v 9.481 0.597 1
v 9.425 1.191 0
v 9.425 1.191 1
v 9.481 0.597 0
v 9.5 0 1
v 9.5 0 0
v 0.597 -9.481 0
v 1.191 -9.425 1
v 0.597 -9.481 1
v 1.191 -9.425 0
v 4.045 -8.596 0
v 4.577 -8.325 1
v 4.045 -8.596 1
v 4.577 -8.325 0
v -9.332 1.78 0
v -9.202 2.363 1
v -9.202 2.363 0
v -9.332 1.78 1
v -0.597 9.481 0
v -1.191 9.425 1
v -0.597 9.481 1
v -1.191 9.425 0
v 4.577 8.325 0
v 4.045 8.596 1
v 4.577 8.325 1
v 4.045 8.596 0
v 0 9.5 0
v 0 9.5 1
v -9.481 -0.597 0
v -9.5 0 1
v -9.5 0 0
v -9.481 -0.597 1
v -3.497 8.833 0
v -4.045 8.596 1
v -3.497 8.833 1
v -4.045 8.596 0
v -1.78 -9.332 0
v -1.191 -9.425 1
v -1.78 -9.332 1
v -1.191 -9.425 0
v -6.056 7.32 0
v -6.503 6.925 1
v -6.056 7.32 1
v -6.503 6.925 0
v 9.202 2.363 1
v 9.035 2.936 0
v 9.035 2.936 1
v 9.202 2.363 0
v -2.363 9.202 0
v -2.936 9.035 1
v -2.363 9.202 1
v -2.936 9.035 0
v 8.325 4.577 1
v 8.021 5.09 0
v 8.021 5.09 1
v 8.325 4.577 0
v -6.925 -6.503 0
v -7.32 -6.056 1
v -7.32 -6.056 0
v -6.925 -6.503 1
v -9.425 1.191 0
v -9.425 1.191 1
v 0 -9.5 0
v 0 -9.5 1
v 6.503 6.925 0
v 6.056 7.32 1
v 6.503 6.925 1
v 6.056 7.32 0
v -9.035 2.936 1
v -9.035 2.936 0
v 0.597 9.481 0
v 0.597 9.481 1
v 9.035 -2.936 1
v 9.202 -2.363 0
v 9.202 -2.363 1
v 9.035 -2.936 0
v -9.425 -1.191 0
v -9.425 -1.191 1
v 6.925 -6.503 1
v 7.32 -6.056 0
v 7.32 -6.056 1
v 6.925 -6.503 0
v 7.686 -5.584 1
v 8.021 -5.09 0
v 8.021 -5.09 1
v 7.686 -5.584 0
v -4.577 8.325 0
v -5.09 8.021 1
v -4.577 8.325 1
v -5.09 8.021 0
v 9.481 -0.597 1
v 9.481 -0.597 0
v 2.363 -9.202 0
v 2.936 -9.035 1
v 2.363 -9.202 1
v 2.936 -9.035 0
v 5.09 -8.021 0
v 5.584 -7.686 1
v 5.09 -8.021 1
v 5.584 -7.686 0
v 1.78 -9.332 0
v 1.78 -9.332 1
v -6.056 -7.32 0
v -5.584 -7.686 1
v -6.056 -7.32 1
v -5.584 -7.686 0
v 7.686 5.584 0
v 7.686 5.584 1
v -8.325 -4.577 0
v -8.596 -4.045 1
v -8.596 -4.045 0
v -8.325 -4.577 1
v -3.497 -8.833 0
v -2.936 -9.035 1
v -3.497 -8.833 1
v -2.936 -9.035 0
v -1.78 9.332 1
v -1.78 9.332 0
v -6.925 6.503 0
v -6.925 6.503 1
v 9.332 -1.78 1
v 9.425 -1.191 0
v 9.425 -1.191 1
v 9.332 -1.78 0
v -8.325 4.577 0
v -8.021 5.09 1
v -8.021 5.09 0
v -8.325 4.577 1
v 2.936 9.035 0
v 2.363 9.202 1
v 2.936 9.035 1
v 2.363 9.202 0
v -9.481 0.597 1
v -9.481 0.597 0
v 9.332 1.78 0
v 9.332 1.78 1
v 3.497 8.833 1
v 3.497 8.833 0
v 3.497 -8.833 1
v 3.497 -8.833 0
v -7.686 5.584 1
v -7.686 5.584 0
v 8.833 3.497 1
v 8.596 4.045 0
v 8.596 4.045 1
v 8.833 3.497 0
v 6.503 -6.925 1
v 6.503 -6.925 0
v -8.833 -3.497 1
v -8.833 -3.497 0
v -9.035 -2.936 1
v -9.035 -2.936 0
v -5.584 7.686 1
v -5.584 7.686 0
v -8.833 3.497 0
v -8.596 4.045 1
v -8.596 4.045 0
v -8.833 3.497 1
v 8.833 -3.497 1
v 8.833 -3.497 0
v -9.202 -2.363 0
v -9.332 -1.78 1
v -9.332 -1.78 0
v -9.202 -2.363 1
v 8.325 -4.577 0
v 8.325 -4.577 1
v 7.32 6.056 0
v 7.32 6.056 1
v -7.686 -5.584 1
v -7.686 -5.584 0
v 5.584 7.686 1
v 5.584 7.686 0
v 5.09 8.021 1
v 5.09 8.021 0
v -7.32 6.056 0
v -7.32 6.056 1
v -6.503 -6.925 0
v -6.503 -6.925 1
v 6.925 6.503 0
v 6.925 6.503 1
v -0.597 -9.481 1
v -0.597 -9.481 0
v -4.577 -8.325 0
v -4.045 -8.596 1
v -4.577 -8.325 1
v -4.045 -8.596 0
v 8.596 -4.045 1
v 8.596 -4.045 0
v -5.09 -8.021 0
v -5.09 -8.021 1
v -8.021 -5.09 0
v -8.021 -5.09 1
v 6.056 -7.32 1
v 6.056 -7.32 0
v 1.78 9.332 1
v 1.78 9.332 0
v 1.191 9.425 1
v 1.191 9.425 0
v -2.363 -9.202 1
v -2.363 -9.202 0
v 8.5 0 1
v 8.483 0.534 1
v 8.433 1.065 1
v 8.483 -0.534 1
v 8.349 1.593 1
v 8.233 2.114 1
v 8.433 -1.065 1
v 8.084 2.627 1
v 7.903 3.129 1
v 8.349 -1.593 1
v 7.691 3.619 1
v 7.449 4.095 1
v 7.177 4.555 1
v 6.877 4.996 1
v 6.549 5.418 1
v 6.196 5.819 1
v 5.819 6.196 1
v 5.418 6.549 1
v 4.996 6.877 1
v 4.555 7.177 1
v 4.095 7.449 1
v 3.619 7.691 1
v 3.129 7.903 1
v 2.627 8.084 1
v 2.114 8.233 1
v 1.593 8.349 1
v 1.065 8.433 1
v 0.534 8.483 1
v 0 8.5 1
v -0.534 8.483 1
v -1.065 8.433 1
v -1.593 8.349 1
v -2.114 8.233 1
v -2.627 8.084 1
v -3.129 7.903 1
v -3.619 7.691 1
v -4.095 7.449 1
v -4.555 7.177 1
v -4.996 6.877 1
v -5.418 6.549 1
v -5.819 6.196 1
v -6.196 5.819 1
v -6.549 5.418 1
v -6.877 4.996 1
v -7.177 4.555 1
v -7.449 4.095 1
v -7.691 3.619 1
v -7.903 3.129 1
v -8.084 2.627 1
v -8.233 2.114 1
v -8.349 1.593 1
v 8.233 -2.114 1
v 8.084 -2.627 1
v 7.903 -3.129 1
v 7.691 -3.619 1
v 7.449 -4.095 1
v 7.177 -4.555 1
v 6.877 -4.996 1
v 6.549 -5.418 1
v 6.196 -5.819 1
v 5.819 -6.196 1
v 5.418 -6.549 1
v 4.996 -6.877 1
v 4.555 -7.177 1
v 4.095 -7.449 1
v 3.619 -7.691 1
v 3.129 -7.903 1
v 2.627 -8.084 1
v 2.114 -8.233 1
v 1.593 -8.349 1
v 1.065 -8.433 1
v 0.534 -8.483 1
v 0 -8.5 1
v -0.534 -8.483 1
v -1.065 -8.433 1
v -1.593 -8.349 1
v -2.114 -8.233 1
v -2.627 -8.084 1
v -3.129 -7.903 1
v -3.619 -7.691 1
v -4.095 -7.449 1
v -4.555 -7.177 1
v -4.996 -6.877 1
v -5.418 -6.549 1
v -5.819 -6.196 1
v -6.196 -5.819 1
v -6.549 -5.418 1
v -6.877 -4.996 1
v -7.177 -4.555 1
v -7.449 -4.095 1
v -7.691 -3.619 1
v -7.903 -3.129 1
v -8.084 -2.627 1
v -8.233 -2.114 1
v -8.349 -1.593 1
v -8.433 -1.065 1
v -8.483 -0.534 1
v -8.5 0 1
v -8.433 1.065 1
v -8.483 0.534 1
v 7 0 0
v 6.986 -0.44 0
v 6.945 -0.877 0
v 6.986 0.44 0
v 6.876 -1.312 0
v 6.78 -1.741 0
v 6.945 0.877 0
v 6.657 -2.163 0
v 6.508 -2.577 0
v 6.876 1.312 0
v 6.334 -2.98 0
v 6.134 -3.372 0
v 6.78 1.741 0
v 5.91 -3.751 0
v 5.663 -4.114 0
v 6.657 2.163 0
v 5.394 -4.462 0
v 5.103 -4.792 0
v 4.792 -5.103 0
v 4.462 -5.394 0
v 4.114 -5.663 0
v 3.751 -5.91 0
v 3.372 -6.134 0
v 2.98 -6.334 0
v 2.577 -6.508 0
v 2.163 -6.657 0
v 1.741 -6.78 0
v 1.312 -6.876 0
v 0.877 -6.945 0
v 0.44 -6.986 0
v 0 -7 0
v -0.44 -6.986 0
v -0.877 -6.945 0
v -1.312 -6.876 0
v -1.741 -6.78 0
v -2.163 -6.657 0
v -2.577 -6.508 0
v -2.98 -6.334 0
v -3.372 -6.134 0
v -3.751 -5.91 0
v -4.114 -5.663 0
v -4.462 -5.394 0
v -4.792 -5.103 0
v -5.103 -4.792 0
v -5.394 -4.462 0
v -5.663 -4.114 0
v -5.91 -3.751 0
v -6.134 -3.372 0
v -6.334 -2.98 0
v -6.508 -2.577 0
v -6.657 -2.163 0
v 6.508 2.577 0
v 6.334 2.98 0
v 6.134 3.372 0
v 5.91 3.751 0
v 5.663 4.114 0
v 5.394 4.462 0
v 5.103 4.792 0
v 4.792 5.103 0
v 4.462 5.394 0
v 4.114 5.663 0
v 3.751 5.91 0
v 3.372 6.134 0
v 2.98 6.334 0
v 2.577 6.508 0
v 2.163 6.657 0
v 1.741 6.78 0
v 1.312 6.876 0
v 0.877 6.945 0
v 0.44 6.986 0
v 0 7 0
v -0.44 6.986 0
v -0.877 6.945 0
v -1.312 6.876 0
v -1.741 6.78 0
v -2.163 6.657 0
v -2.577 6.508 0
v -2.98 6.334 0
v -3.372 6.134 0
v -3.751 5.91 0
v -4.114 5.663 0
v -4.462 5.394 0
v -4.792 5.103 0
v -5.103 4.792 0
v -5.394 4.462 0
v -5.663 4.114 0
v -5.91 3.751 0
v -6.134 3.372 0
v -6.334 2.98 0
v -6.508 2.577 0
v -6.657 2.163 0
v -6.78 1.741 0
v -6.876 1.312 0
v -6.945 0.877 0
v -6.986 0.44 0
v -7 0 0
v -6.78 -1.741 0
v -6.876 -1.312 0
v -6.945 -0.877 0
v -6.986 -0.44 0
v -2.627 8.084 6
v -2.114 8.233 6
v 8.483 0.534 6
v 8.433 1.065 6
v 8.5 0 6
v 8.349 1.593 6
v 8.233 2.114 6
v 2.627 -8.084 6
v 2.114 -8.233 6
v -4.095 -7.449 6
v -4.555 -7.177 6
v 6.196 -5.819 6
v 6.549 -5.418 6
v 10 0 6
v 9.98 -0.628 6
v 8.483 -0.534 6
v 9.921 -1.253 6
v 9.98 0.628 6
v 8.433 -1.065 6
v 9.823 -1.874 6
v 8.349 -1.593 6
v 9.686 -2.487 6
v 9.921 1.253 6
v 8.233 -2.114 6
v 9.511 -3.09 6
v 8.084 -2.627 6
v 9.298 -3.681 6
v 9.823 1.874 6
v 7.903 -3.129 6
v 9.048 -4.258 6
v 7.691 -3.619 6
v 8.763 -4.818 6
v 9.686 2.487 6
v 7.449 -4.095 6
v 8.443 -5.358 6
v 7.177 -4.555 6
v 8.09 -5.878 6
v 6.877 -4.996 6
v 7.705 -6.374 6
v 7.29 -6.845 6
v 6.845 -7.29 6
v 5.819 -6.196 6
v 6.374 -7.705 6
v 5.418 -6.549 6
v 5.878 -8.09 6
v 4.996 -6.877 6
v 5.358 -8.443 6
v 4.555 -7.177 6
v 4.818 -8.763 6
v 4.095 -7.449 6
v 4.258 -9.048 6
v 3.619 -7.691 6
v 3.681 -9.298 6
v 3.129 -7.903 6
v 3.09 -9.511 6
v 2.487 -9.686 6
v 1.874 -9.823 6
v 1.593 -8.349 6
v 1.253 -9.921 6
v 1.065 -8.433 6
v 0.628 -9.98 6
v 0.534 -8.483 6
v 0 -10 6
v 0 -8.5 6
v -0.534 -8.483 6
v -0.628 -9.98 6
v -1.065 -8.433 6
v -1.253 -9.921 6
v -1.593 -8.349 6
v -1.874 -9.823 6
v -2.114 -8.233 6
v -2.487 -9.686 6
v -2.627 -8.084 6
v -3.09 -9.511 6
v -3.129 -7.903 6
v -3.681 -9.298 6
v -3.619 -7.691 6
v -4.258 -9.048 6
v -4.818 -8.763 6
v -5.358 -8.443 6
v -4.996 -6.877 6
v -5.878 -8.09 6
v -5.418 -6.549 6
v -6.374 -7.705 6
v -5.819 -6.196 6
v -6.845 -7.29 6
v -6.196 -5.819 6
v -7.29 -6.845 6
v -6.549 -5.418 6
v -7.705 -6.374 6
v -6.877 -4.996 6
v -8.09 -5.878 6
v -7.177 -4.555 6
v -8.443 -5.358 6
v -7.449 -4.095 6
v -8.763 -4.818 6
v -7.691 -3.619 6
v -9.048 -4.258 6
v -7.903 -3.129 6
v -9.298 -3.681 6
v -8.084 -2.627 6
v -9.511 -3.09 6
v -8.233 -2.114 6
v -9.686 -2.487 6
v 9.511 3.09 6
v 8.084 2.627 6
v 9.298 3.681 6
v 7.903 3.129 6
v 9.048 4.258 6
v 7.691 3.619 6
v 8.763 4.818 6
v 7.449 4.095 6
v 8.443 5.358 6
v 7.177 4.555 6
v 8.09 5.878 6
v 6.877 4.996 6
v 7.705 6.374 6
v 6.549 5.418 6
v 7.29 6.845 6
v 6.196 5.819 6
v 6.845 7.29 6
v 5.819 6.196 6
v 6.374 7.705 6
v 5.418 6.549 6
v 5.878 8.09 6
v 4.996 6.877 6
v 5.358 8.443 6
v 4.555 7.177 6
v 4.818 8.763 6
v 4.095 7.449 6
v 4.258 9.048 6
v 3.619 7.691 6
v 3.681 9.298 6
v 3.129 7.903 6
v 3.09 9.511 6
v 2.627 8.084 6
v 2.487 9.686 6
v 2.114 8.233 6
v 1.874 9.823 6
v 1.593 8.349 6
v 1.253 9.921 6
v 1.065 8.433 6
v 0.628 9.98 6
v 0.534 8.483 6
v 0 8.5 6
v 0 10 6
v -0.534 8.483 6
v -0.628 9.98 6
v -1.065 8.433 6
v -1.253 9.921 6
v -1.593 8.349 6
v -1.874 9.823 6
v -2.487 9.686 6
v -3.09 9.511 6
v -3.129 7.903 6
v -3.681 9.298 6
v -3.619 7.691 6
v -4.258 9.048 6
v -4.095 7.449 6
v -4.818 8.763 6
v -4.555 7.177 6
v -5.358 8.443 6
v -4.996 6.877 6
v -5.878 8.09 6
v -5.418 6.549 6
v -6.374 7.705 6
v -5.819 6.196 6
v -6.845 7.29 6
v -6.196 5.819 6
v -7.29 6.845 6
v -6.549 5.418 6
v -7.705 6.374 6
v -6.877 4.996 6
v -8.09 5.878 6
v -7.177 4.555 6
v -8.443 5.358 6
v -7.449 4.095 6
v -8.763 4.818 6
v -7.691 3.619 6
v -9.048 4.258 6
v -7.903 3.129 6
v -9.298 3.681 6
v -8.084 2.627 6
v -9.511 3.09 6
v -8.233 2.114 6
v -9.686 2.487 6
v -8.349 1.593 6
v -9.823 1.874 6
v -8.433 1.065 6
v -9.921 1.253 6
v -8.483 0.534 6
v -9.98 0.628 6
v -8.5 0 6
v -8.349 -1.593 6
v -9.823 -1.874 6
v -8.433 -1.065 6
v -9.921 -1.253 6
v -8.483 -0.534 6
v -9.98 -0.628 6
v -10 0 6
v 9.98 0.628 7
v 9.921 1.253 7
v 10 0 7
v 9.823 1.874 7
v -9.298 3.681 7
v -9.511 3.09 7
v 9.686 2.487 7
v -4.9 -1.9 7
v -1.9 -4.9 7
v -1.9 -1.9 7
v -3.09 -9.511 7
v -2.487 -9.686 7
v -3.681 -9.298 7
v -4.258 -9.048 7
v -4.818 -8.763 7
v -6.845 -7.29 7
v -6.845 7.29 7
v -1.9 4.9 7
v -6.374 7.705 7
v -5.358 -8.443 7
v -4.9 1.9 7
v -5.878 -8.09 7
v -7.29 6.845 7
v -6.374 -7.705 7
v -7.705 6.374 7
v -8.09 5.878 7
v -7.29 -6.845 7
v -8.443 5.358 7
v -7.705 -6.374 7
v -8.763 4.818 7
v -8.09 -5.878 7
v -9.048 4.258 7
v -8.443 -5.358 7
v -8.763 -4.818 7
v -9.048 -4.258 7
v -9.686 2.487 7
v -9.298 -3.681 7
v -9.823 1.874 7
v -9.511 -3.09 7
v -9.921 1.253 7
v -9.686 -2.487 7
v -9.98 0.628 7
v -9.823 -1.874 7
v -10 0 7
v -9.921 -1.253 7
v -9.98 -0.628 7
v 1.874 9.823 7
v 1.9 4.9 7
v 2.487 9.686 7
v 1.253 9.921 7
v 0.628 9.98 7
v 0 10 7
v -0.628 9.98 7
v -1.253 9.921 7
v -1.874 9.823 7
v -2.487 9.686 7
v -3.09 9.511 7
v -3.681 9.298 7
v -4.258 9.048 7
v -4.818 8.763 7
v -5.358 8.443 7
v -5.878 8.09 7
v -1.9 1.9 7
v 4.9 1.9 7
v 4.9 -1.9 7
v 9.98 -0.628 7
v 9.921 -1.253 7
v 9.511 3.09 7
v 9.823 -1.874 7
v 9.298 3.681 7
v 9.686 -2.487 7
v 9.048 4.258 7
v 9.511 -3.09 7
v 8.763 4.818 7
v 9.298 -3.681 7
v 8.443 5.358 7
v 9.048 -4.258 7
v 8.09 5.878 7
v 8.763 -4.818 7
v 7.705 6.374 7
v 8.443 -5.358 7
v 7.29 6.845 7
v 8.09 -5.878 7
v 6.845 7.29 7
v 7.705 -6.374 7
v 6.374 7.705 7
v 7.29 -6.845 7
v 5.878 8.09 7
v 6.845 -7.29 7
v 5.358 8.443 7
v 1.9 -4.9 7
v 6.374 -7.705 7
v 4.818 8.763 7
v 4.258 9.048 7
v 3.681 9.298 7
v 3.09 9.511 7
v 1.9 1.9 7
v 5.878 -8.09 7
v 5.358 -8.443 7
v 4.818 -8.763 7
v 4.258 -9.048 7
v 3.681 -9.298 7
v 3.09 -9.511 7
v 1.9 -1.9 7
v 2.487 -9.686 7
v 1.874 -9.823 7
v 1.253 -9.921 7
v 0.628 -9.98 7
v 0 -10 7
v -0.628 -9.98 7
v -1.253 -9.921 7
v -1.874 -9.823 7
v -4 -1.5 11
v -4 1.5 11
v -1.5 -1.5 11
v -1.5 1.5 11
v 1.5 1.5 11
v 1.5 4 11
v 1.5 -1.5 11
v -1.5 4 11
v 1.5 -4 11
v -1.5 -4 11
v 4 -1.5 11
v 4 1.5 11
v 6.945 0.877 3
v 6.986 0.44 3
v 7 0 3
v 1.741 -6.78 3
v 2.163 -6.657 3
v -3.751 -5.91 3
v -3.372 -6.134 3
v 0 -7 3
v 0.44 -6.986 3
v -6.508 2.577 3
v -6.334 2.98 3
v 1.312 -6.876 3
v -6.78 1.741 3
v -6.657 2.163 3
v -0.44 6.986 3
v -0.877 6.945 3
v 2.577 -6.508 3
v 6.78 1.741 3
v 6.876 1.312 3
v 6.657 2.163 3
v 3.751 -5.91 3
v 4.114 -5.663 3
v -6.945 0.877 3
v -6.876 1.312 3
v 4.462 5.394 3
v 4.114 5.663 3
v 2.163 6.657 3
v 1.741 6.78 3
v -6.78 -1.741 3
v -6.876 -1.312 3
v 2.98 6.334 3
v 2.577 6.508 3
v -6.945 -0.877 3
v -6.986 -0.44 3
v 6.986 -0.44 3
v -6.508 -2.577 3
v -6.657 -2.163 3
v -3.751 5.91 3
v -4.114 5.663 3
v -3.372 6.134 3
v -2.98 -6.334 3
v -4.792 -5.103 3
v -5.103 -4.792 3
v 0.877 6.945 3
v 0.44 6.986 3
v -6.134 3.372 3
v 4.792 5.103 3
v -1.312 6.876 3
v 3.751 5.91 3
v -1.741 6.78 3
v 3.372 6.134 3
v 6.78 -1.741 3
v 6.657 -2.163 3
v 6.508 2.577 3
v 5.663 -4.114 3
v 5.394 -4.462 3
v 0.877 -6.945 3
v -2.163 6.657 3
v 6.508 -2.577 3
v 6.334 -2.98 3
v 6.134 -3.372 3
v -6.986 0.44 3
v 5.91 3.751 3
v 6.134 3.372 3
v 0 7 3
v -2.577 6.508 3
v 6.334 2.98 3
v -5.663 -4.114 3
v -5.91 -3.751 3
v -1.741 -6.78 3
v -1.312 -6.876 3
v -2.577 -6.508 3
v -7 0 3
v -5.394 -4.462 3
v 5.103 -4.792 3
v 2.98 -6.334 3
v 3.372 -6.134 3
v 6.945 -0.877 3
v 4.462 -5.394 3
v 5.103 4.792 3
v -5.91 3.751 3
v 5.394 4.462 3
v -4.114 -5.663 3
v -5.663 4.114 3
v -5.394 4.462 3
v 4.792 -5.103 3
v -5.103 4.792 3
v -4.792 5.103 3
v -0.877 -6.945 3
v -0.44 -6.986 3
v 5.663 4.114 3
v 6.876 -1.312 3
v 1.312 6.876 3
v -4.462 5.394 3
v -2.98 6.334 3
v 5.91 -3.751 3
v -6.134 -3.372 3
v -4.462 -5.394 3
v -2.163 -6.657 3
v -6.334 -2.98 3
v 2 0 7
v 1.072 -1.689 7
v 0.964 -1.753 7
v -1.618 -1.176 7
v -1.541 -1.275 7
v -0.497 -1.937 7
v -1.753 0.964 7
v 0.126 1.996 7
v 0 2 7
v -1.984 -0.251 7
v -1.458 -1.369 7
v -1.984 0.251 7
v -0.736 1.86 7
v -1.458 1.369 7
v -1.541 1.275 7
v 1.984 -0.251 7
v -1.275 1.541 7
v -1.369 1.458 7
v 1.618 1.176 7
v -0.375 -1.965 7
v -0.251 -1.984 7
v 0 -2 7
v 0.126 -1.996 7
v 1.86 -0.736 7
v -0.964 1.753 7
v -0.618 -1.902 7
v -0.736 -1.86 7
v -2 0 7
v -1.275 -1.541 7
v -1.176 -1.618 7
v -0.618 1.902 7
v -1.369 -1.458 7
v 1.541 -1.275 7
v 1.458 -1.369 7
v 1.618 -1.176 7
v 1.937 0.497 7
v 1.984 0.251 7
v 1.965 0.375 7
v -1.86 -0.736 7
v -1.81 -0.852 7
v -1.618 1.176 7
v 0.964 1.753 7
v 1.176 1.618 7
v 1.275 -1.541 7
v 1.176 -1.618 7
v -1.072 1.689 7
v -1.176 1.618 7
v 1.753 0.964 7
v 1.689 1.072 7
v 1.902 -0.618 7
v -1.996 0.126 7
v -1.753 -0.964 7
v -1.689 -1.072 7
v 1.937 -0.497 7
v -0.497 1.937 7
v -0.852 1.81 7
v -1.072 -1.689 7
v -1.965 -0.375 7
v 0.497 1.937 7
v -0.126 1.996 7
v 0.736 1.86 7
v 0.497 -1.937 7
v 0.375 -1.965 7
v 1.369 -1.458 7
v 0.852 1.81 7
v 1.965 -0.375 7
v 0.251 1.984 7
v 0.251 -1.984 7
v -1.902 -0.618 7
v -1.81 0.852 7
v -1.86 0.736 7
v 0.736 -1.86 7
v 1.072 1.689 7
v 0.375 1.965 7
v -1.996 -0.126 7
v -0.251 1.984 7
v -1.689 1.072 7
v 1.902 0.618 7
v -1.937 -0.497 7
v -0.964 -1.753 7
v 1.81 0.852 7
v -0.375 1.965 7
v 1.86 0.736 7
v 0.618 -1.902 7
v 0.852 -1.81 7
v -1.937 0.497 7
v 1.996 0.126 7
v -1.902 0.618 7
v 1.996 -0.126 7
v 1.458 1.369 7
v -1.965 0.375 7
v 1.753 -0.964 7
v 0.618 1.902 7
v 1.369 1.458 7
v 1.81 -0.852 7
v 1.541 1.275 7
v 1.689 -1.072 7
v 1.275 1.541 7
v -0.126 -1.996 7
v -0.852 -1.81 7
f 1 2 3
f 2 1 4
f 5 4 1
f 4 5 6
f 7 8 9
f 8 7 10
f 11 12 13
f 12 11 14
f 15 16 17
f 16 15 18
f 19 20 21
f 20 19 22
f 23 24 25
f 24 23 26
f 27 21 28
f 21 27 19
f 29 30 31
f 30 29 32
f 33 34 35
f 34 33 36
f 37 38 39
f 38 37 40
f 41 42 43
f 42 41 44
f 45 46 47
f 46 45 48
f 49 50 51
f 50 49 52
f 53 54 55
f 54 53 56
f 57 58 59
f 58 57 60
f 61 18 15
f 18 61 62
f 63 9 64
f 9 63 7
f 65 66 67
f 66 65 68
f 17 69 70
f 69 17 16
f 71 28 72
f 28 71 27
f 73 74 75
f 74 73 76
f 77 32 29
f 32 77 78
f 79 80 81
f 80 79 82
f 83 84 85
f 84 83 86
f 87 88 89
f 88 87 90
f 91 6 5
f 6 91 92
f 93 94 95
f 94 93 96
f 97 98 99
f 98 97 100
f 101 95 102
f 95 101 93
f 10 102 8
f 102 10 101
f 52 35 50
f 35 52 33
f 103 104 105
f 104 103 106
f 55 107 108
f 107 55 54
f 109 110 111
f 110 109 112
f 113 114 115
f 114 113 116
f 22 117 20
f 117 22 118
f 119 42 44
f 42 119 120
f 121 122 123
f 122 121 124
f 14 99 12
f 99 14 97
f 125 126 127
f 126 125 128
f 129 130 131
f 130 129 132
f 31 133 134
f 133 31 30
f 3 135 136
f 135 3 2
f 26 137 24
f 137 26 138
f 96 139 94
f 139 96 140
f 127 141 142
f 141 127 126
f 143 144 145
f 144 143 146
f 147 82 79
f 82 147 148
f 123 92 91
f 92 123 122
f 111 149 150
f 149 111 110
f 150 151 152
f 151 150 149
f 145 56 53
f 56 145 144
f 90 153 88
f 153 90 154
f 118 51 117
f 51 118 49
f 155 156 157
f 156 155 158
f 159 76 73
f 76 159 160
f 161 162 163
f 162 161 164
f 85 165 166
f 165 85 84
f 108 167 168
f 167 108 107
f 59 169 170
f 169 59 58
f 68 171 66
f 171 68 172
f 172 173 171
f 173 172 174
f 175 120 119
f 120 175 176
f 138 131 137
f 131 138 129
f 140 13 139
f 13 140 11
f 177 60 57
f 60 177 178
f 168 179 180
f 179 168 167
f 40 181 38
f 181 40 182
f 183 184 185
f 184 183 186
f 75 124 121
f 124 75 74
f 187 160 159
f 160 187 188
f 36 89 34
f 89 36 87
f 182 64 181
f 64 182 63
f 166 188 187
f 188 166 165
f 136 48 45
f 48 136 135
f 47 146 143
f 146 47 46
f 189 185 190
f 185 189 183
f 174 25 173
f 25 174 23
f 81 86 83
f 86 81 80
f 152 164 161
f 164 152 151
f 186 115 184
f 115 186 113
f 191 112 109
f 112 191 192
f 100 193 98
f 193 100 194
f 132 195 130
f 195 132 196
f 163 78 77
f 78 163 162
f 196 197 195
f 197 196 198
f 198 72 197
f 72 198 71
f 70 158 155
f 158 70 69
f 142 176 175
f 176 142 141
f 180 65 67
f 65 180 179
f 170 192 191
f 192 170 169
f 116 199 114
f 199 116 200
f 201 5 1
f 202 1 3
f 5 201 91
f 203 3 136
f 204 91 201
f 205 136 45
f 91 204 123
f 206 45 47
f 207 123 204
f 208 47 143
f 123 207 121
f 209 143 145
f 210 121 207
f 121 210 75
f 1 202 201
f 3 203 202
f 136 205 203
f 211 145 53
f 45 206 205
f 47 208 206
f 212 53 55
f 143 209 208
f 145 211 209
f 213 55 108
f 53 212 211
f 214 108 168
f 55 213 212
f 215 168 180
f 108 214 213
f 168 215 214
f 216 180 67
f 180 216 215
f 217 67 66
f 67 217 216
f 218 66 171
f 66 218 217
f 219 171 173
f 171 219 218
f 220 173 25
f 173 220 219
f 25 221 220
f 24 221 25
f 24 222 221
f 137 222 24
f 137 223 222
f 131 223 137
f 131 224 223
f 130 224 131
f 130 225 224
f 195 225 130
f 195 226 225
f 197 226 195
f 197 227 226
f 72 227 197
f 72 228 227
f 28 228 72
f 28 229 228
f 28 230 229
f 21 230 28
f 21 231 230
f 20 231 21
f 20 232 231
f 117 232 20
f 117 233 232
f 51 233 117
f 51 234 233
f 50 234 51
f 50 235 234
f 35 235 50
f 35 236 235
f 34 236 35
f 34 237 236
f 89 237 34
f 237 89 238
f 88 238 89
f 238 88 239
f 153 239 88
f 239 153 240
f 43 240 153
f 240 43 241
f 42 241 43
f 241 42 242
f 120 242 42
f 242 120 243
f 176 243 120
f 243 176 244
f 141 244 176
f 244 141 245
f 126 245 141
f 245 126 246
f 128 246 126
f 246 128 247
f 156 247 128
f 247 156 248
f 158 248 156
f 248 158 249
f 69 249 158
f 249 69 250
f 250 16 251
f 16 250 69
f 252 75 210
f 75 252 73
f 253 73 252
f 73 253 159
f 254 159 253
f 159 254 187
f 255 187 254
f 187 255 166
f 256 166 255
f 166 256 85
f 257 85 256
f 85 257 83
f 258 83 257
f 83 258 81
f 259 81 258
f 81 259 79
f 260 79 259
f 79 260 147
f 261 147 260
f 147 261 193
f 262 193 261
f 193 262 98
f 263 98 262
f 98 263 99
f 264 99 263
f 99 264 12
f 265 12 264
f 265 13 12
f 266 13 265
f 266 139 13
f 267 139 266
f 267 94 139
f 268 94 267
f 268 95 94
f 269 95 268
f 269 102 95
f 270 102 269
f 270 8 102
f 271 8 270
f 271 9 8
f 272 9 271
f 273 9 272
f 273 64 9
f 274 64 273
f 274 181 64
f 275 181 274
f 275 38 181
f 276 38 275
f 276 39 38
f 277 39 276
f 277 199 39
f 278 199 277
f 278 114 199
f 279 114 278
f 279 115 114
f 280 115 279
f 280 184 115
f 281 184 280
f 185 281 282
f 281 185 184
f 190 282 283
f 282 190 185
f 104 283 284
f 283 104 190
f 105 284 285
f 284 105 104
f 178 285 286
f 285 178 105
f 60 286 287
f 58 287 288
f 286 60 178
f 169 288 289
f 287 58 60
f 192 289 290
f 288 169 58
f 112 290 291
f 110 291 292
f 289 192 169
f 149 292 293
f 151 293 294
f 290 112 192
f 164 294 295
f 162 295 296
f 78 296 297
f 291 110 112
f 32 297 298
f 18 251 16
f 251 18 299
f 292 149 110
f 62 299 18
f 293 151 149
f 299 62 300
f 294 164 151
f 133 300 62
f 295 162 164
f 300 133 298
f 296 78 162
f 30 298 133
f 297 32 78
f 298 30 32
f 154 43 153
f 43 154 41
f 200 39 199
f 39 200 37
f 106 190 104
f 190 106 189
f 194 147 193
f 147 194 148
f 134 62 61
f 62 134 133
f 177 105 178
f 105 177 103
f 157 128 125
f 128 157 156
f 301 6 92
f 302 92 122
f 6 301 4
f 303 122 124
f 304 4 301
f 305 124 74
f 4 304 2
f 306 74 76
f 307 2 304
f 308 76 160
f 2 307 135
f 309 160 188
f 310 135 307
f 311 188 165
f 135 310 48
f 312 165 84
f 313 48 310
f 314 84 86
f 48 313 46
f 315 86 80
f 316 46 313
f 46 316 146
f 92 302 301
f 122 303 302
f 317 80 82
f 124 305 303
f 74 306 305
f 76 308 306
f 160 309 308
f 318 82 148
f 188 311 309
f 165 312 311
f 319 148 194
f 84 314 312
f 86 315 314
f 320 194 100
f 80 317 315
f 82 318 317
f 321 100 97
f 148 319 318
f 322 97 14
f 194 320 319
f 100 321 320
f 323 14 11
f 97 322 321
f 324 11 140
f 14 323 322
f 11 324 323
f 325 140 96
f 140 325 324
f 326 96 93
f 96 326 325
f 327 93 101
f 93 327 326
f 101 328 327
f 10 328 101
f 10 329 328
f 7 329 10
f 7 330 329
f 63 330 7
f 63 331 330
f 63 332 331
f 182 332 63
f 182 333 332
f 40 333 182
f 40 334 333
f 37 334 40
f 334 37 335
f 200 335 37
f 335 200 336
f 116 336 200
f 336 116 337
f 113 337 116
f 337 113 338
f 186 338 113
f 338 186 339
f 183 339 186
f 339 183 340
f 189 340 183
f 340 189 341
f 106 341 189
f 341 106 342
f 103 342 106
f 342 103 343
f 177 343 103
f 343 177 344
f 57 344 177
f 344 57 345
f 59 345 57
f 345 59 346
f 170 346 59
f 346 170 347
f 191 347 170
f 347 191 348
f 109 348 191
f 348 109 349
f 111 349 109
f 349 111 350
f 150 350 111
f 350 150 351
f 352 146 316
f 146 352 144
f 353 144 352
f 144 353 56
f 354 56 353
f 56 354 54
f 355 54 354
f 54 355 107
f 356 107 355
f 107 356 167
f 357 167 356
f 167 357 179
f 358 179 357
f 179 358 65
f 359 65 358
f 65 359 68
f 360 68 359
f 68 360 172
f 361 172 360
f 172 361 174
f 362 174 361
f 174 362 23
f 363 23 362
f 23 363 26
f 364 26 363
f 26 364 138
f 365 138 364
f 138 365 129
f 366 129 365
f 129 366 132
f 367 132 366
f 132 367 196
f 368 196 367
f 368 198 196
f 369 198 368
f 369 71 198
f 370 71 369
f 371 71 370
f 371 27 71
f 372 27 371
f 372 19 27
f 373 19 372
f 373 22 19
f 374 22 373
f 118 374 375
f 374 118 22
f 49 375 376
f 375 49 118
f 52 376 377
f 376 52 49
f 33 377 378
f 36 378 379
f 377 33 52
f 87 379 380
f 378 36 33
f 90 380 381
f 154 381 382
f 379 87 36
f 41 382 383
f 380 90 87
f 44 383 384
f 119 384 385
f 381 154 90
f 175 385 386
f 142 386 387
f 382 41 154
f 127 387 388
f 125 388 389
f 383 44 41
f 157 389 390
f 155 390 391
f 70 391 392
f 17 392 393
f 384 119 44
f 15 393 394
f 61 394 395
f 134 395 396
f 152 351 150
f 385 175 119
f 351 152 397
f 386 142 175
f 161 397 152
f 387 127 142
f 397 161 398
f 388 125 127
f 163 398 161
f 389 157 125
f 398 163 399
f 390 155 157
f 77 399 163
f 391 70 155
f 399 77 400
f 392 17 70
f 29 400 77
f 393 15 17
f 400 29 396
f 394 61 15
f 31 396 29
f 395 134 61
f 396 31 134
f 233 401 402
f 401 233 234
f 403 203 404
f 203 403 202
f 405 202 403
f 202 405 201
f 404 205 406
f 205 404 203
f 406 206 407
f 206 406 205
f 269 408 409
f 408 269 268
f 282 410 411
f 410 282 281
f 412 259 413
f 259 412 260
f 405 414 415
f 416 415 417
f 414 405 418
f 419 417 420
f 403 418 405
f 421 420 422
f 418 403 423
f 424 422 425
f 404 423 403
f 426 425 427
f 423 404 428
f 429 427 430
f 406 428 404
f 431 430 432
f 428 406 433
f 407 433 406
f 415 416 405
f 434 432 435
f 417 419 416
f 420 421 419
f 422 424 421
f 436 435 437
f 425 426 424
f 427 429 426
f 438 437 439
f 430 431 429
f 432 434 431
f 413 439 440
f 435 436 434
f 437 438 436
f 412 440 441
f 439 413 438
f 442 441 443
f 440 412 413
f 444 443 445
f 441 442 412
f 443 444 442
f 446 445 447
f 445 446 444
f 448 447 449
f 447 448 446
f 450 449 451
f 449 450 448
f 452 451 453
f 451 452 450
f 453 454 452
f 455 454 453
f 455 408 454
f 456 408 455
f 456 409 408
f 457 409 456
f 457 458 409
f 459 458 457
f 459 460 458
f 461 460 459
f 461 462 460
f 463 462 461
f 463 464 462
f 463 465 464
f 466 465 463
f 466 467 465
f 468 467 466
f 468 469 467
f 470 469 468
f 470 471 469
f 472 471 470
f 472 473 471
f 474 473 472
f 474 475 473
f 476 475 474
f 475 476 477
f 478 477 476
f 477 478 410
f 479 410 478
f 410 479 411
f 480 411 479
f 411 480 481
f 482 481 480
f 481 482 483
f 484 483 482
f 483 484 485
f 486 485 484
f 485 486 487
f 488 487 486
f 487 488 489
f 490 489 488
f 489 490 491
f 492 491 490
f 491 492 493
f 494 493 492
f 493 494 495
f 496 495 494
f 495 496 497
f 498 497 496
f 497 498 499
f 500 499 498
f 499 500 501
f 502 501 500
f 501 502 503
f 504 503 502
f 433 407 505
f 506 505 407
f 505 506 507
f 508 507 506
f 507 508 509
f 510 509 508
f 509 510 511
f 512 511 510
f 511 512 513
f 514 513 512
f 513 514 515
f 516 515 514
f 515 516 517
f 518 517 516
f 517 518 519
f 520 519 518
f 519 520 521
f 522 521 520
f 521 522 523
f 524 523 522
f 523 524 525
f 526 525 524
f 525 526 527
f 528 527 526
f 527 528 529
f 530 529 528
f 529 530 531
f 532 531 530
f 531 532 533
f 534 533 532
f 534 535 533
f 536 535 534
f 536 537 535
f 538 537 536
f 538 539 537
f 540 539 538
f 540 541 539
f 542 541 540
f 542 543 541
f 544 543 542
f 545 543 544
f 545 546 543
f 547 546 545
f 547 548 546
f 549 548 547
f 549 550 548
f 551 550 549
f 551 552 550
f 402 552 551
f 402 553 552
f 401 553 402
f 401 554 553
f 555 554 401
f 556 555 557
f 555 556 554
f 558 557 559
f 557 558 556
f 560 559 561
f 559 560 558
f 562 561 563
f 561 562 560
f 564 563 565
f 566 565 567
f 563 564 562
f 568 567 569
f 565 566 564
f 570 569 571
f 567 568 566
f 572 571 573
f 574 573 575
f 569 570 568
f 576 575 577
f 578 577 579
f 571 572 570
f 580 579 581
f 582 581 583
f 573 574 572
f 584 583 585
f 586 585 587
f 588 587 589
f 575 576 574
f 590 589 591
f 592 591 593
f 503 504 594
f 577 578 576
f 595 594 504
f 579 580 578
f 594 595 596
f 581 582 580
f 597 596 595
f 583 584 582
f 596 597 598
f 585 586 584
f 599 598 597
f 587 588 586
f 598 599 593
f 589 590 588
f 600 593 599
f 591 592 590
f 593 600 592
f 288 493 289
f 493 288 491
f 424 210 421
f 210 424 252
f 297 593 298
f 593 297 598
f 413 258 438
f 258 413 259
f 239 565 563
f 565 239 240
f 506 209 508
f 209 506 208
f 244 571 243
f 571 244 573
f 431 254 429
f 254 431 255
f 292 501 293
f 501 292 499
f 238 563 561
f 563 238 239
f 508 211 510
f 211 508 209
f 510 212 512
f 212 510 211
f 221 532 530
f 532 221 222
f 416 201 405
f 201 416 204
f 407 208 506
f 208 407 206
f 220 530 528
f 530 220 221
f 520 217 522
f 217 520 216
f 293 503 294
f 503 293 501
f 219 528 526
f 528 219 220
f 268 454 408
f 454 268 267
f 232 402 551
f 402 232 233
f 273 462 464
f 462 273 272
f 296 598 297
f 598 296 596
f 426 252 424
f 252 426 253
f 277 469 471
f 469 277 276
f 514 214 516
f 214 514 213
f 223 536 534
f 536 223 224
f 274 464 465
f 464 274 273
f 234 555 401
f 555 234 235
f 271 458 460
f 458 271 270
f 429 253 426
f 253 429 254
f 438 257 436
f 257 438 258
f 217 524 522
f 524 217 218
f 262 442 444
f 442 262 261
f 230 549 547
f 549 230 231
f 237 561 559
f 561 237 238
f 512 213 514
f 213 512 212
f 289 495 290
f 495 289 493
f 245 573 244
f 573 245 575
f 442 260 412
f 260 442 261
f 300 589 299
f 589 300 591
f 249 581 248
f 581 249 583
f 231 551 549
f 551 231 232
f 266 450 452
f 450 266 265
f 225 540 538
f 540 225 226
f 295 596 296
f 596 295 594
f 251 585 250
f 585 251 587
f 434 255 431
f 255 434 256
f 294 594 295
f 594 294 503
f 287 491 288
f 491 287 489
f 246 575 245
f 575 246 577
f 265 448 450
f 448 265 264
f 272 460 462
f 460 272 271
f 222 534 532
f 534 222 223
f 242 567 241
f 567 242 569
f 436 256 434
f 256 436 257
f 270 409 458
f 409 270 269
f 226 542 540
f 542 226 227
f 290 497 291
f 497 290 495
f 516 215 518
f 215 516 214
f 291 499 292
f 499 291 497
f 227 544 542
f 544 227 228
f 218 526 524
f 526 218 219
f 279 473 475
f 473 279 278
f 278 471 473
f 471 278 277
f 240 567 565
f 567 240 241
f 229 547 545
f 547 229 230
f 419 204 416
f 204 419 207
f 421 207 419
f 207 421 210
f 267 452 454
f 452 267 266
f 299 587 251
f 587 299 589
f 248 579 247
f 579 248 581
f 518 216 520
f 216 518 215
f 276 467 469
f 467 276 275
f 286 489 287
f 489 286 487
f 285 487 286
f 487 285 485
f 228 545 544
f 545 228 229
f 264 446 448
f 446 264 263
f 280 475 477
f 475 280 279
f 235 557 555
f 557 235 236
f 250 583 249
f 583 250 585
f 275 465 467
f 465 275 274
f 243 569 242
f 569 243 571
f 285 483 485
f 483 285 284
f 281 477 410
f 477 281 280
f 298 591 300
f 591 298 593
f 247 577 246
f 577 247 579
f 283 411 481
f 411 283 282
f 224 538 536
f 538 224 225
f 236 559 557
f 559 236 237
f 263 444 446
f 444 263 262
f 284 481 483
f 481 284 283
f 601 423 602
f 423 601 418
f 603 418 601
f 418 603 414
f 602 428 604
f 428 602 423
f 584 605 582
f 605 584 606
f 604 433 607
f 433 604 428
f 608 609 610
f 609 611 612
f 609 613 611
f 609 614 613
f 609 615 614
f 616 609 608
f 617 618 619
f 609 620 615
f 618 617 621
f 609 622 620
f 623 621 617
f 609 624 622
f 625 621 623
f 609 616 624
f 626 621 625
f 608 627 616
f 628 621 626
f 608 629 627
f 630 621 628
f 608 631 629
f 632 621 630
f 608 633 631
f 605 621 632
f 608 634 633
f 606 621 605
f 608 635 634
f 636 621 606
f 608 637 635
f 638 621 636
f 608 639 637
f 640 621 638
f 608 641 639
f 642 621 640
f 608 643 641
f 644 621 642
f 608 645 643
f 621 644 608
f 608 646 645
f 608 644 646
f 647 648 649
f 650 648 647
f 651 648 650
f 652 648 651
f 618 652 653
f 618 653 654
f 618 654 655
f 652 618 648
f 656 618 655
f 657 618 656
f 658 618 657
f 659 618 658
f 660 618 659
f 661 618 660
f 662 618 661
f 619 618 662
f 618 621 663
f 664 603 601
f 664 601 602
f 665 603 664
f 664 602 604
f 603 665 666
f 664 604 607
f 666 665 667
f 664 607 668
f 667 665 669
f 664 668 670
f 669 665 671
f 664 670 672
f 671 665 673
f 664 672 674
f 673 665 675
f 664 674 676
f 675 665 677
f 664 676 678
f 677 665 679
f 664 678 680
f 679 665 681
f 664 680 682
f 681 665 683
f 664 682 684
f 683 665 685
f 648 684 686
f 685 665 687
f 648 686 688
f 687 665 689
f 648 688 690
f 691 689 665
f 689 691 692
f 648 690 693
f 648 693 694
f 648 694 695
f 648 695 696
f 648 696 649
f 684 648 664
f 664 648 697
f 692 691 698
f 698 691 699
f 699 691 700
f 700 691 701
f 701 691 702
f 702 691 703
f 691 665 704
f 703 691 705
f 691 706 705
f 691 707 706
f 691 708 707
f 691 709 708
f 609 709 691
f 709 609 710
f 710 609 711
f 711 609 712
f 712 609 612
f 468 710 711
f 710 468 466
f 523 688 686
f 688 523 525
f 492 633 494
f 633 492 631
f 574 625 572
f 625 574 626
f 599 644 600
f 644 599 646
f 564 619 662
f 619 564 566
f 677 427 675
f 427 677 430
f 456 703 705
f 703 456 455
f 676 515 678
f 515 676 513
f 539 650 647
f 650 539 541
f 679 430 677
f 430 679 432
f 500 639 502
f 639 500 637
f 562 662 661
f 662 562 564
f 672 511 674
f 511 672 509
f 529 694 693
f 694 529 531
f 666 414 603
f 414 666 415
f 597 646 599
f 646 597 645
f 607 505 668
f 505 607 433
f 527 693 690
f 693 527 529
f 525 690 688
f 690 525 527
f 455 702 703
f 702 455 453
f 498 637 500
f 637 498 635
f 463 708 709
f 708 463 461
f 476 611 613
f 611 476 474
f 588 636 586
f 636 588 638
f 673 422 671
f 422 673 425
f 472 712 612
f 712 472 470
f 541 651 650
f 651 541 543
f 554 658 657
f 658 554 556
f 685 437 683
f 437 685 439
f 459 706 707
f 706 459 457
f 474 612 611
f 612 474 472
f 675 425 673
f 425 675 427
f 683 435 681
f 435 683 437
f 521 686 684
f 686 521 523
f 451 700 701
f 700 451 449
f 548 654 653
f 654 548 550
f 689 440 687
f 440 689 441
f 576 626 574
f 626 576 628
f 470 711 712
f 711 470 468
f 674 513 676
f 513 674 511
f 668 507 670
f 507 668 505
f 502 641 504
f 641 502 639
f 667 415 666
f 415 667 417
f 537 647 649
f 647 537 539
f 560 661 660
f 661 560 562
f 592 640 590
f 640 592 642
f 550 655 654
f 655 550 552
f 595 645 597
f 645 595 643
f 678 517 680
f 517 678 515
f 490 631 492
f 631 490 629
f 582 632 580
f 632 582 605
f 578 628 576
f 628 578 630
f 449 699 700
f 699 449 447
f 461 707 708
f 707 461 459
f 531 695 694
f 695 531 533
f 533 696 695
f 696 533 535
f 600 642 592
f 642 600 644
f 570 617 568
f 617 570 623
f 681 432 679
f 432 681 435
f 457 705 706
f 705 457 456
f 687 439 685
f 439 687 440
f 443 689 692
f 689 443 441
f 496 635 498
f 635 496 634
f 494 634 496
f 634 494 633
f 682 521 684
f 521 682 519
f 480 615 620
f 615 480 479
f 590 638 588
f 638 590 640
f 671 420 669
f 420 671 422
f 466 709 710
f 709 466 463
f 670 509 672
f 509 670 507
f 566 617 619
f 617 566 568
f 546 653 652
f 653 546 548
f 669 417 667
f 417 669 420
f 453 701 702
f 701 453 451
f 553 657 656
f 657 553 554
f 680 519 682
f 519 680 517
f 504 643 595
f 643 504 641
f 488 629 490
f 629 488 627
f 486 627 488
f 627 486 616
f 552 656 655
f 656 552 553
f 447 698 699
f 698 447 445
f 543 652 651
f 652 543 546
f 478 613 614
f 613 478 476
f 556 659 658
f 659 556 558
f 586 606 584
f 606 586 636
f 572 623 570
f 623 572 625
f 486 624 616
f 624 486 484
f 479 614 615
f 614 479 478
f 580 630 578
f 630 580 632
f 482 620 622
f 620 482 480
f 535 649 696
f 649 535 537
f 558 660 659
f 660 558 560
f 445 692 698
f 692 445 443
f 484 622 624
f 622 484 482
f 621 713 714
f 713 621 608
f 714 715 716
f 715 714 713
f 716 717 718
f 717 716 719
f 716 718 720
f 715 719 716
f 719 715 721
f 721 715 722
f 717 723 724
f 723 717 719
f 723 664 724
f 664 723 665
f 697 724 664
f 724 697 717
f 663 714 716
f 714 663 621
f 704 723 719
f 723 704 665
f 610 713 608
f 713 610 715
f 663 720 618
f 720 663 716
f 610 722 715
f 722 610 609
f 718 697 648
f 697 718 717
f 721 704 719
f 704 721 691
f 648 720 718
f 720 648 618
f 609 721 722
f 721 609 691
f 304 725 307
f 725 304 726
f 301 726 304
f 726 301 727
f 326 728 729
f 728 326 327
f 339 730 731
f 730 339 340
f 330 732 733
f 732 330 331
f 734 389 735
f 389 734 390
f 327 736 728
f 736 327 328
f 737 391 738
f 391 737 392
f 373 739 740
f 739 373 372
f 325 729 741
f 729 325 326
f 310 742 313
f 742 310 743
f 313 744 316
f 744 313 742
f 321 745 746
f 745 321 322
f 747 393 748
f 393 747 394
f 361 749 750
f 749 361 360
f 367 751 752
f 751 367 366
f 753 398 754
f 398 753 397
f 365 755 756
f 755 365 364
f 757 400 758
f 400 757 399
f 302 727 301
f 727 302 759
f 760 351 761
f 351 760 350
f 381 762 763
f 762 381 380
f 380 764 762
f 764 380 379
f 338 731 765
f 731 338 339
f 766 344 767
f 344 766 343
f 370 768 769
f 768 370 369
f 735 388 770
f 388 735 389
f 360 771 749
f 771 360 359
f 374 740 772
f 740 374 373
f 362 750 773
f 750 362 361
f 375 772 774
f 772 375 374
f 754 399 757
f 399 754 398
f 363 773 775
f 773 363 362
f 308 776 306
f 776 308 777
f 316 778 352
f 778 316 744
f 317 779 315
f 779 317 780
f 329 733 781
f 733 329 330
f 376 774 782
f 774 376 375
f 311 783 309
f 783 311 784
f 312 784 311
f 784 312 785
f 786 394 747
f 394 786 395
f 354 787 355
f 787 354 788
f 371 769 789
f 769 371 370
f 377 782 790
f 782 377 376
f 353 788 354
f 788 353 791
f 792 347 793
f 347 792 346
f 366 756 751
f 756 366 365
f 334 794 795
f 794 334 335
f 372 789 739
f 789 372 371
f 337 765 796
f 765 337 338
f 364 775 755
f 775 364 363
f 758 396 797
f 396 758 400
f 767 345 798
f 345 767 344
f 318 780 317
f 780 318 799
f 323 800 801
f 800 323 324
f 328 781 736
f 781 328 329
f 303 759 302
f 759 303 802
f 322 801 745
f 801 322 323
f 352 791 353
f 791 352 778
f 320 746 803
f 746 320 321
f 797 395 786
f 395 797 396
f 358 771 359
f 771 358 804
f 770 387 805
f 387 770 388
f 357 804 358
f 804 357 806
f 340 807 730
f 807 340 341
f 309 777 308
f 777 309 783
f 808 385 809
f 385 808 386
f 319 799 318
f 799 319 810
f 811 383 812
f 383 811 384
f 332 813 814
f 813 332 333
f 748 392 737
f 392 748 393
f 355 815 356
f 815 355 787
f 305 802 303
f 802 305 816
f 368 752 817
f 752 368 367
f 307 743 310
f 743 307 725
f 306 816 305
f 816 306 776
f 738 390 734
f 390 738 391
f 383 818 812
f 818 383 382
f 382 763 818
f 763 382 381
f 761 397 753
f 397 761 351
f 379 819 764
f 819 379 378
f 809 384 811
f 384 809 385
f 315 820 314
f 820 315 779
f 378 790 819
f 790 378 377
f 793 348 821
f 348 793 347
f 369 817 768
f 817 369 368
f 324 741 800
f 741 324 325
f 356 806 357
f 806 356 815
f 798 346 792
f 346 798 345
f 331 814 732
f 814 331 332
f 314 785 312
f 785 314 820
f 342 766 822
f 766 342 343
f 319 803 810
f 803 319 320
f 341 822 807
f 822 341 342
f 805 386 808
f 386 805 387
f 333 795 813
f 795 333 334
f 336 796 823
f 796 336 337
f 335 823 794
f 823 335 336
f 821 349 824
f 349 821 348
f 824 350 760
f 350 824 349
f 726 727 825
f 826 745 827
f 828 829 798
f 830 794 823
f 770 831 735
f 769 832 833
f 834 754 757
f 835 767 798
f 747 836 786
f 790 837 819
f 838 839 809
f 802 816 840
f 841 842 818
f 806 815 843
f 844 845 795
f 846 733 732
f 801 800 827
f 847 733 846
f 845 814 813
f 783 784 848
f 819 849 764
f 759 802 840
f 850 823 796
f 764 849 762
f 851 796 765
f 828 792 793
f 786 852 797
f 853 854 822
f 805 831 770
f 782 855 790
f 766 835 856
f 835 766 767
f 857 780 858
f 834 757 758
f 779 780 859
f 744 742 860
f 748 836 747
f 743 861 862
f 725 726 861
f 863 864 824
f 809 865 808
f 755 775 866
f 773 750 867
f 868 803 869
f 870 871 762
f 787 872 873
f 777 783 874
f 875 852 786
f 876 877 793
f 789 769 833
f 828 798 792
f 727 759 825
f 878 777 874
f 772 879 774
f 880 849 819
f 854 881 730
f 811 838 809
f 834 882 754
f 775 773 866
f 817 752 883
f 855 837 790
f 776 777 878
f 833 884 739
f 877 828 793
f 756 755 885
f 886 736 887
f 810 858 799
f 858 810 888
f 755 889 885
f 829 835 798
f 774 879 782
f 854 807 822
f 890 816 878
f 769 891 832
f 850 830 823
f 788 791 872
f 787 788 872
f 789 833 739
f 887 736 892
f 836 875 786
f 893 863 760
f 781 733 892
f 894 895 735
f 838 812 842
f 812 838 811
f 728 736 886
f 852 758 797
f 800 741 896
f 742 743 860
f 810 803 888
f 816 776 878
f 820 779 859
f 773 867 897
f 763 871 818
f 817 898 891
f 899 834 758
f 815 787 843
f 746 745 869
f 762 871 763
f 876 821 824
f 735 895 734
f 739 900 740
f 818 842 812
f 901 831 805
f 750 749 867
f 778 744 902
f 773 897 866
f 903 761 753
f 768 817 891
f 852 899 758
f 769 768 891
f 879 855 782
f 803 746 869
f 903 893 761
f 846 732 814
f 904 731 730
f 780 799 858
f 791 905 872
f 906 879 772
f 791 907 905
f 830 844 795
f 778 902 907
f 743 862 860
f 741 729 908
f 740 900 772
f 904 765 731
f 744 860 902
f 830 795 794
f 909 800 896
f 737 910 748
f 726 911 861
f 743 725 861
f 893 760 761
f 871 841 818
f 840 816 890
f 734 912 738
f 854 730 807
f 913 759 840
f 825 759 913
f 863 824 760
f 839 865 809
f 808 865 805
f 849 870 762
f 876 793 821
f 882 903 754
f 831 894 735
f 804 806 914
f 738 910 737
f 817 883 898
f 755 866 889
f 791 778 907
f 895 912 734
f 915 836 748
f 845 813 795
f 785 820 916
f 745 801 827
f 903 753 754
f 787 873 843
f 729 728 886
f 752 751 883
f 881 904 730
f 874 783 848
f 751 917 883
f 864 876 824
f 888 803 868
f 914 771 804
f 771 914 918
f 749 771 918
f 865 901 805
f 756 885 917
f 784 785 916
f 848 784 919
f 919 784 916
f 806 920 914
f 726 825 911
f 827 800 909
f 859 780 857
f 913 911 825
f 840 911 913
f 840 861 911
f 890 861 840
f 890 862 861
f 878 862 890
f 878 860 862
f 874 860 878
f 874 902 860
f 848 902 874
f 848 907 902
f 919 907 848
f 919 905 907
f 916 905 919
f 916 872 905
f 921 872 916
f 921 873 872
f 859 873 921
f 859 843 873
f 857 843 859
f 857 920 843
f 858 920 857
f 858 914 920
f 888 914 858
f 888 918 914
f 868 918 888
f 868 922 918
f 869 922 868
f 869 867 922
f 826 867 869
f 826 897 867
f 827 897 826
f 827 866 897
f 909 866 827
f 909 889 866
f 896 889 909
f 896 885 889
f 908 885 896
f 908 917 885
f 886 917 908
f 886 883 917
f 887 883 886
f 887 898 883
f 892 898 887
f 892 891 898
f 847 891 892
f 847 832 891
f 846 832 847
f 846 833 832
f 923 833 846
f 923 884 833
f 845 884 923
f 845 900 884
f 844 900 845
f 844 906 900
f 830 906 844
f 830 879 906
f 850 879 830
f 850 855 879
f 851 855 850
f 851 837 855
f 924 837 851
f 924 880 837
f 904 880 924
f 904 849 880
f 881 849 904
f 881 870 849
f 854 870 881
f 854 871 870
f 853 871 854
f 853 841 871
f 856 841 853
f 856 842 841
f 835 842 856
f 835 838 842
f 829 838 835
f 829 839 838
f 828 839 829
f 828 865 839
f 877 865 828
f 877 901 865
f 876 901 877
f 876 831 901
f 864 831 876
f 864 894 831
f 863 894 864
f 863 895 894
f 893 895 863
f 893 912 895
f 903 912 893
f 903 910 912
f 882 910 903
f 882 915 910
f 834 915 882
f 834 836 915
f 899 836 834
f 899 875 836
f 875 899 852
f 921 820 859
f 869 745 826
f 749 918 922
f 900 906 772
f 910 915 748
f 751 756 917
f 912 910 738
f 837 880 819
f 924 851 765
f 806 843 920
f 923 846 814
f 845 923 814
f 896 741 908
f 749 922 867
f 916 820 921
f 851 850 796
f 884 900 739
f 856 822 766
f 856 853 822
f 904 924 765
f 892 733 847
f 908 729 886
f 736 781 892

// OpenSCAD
// Parameters
disk_diameter = 20;     // Diameter of the base disk in mm
disk_height = 7;       // Height of the base disk in mm (adjusted to match rim total height)
handle_diameter = 8;    // Diameter of the handle cylinder
handle_height = 12;     // Height of the handle cylinder
resolution = 100;       // Resolution for curved surfaces ($fn value)

// Phillips head parameters
phillips_height = 4;    // Height of the Phillips head protrusion
phillips_width_base = 3.8;  // Width of each arm at the base
phillips_width_top = 3.0;   // Width of each arm at the top (smaller for taper)
phillips_diameter_base = 9.8;  // Diameter of the Phillips head at the base
phillips_diameter_top = 8.0;   // Diameter of the Phillips head at the top (smaller for taper)

// Rim parameters
rim_notch_depth = 1.5;         // How deep the notch goes into the rim
rim_notch_height = 5.0;       // Height of the notch section
rim_bottom_lip_diameter = disk_diameter -1;  // Smaller diameter at bottom for tire mounting
rim_bottom_lip_height = 1.0;   // Height of the smaller bottom lip
rim_top_lip_height = 1.0;      // Height of the top lip

// Improved dome cutout parameters
bottom_cavity_diameter = 14;   // Diameter of the cavity at the bottom
mid_cavity_diameter = 14;      // Diameter in the middle where dome starts curving
top_cavity_diameter = 4;       // Maximum diameter at the top of the cavity
parallel_height = 3;           // Height of the parallel section before dome curvature
dome_height = 4;               // Height of the domed section
wall_thickness = 1.5;          // Minimum wall thickness

// Module to create a tapered Phillips head shape
module tapered_phillips_head(diameter_base, diameter_top, width_base, width_top, height) {
    taper_ratio = width_top / width_base;
    
    union() {
        // First arm of the X - tapered
        translate([0, 0, disk_height]) {
            linear_extrude(height = height, scale = [diameter_top/diameter_base, width_top/width_base], center = false) {
                translate([-diameter_base/2, -width_base/2, 0])
                    square([diameter_base, width_base]);
            }
        }
        
        // Second arm of the X - tapered (rotated 90 degrees)
        translate([0, 0, disk_height]) {
            linear_extrude(height = height, scale = [width_top/width_base, diameter_top/diameter_base], center = false) {
                translate([-width_base/2, -diameter_base/2, 0])
                    square([width_base, diameter_base]);
            }
        }
    }
}

// Module to create a wheel rim with outside notch for TPU tire
module wheel_rim_with_outside_notch() {
    union() {
        // Bottom section with smaller diameter for tire mounting
        cylinder(h = rim_bottom_lip_height, d = rim_bottom_lip_diameter, $fn = resolution);
        
        // Middle section with notch for tire
        translate([0, 0, rim_bottom_lip_height])
            cylinder(h = rim_notch_height, d = disk_diameter - 2 * rim_notch_depth, $fn = resolution);
        
        // Top lip to secure the tire
        translate([0, 0, rim_bottom_lip_height + rim_notch_height])
            cylinder(h = rim_top_lip_height, d = disk_diameter, $fn = resolution);
    }
}

// Improved module to create a dome-shaped cutout that starts parallel
// and then curves into a dome deeper in
module improved_dome_cutout() {
    // Bottom parallel section
    translate([0, 0, 0])
        cylinder(h = parallel_height, d = bottom_cavity_diameter, $fn = resolution);
    
    // Transition to domed section
    translate([0, 0, parallel_height])
        cylinder(h = dome_height, d1 = mid_cavity_diameter, d2 = top_cavity_diameter, $fn = resolution);
}

// Main component construction
difference() {
    union() {
        // Create the wheel rim with outside notch
        wheel_rim_with_outside_notch();
        
        // Tapered Phillips head protrusion on top of the disk
        tapered_phillips_head(
            phillips_diameter_base, 
            phillips_diameter_top, 
            phillips_width_base, 
            phillips_width_top, 
            phillips_height
        );
    }
    
    // Cut out the improved dome shape from the inside of the disc
    improved_dome_cutout();
}
